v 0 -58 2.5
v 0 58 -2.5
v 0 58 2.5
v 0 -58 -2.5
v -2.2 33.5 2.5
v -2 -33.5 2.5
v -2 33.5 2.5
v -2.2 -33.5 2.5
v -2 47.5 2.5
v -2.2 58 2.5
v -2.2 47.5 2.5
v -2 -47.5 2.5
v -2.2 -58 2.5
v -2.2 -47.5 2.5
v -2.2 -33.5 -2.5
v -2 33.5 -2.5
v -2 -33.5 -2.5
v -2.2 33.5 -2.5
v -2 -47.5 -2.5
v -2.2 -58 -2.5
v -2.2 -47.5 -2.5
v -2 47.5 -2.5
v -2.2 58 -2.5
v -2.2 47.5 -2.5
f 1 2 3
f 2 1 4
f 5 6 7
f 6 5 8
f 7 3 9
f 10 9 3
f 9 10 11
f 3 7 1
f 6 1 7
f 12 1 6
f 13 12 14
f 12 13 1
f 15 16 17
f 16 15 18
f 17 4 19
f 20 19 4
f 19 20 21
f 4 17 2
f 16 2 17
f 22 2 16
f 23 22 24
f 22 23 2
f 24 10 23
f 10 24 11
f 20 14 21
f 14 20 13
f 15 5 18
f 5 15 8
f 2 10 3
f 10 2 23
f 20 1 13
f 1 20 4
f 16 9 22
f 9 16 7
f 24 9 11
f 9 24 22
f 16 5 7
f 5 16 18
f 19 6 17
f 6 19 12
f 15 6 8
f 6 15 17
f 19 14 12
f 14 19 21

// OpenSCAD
liner_heigth = 2.2;
liner_length = 120-4;
liner_width = 5;

cut_height = 2;
cut_width = 14;
cut_offset = 40.5;

//  translate([-liner_heigth*0.5, 0, 0])
//    cube([liner_heigth*2, 67, liner_width*2], center=true);

difference() {
  translate([-liner_heigth*0.5, 0, 0])
    cube([liner_heigth, liner_length, liner_width], center=true);
    
    
    translate([-cut_height*1.5-cut_height, cut_offset, 0])
  cube([cut_height*3, cut_width, liner_width+1], center=true);

translate([-cut_height*1.5-cut_height, -cut_offset, 0])
  cube([cut_height*3, cut_width, liner_width+1], center=true);

    
}
